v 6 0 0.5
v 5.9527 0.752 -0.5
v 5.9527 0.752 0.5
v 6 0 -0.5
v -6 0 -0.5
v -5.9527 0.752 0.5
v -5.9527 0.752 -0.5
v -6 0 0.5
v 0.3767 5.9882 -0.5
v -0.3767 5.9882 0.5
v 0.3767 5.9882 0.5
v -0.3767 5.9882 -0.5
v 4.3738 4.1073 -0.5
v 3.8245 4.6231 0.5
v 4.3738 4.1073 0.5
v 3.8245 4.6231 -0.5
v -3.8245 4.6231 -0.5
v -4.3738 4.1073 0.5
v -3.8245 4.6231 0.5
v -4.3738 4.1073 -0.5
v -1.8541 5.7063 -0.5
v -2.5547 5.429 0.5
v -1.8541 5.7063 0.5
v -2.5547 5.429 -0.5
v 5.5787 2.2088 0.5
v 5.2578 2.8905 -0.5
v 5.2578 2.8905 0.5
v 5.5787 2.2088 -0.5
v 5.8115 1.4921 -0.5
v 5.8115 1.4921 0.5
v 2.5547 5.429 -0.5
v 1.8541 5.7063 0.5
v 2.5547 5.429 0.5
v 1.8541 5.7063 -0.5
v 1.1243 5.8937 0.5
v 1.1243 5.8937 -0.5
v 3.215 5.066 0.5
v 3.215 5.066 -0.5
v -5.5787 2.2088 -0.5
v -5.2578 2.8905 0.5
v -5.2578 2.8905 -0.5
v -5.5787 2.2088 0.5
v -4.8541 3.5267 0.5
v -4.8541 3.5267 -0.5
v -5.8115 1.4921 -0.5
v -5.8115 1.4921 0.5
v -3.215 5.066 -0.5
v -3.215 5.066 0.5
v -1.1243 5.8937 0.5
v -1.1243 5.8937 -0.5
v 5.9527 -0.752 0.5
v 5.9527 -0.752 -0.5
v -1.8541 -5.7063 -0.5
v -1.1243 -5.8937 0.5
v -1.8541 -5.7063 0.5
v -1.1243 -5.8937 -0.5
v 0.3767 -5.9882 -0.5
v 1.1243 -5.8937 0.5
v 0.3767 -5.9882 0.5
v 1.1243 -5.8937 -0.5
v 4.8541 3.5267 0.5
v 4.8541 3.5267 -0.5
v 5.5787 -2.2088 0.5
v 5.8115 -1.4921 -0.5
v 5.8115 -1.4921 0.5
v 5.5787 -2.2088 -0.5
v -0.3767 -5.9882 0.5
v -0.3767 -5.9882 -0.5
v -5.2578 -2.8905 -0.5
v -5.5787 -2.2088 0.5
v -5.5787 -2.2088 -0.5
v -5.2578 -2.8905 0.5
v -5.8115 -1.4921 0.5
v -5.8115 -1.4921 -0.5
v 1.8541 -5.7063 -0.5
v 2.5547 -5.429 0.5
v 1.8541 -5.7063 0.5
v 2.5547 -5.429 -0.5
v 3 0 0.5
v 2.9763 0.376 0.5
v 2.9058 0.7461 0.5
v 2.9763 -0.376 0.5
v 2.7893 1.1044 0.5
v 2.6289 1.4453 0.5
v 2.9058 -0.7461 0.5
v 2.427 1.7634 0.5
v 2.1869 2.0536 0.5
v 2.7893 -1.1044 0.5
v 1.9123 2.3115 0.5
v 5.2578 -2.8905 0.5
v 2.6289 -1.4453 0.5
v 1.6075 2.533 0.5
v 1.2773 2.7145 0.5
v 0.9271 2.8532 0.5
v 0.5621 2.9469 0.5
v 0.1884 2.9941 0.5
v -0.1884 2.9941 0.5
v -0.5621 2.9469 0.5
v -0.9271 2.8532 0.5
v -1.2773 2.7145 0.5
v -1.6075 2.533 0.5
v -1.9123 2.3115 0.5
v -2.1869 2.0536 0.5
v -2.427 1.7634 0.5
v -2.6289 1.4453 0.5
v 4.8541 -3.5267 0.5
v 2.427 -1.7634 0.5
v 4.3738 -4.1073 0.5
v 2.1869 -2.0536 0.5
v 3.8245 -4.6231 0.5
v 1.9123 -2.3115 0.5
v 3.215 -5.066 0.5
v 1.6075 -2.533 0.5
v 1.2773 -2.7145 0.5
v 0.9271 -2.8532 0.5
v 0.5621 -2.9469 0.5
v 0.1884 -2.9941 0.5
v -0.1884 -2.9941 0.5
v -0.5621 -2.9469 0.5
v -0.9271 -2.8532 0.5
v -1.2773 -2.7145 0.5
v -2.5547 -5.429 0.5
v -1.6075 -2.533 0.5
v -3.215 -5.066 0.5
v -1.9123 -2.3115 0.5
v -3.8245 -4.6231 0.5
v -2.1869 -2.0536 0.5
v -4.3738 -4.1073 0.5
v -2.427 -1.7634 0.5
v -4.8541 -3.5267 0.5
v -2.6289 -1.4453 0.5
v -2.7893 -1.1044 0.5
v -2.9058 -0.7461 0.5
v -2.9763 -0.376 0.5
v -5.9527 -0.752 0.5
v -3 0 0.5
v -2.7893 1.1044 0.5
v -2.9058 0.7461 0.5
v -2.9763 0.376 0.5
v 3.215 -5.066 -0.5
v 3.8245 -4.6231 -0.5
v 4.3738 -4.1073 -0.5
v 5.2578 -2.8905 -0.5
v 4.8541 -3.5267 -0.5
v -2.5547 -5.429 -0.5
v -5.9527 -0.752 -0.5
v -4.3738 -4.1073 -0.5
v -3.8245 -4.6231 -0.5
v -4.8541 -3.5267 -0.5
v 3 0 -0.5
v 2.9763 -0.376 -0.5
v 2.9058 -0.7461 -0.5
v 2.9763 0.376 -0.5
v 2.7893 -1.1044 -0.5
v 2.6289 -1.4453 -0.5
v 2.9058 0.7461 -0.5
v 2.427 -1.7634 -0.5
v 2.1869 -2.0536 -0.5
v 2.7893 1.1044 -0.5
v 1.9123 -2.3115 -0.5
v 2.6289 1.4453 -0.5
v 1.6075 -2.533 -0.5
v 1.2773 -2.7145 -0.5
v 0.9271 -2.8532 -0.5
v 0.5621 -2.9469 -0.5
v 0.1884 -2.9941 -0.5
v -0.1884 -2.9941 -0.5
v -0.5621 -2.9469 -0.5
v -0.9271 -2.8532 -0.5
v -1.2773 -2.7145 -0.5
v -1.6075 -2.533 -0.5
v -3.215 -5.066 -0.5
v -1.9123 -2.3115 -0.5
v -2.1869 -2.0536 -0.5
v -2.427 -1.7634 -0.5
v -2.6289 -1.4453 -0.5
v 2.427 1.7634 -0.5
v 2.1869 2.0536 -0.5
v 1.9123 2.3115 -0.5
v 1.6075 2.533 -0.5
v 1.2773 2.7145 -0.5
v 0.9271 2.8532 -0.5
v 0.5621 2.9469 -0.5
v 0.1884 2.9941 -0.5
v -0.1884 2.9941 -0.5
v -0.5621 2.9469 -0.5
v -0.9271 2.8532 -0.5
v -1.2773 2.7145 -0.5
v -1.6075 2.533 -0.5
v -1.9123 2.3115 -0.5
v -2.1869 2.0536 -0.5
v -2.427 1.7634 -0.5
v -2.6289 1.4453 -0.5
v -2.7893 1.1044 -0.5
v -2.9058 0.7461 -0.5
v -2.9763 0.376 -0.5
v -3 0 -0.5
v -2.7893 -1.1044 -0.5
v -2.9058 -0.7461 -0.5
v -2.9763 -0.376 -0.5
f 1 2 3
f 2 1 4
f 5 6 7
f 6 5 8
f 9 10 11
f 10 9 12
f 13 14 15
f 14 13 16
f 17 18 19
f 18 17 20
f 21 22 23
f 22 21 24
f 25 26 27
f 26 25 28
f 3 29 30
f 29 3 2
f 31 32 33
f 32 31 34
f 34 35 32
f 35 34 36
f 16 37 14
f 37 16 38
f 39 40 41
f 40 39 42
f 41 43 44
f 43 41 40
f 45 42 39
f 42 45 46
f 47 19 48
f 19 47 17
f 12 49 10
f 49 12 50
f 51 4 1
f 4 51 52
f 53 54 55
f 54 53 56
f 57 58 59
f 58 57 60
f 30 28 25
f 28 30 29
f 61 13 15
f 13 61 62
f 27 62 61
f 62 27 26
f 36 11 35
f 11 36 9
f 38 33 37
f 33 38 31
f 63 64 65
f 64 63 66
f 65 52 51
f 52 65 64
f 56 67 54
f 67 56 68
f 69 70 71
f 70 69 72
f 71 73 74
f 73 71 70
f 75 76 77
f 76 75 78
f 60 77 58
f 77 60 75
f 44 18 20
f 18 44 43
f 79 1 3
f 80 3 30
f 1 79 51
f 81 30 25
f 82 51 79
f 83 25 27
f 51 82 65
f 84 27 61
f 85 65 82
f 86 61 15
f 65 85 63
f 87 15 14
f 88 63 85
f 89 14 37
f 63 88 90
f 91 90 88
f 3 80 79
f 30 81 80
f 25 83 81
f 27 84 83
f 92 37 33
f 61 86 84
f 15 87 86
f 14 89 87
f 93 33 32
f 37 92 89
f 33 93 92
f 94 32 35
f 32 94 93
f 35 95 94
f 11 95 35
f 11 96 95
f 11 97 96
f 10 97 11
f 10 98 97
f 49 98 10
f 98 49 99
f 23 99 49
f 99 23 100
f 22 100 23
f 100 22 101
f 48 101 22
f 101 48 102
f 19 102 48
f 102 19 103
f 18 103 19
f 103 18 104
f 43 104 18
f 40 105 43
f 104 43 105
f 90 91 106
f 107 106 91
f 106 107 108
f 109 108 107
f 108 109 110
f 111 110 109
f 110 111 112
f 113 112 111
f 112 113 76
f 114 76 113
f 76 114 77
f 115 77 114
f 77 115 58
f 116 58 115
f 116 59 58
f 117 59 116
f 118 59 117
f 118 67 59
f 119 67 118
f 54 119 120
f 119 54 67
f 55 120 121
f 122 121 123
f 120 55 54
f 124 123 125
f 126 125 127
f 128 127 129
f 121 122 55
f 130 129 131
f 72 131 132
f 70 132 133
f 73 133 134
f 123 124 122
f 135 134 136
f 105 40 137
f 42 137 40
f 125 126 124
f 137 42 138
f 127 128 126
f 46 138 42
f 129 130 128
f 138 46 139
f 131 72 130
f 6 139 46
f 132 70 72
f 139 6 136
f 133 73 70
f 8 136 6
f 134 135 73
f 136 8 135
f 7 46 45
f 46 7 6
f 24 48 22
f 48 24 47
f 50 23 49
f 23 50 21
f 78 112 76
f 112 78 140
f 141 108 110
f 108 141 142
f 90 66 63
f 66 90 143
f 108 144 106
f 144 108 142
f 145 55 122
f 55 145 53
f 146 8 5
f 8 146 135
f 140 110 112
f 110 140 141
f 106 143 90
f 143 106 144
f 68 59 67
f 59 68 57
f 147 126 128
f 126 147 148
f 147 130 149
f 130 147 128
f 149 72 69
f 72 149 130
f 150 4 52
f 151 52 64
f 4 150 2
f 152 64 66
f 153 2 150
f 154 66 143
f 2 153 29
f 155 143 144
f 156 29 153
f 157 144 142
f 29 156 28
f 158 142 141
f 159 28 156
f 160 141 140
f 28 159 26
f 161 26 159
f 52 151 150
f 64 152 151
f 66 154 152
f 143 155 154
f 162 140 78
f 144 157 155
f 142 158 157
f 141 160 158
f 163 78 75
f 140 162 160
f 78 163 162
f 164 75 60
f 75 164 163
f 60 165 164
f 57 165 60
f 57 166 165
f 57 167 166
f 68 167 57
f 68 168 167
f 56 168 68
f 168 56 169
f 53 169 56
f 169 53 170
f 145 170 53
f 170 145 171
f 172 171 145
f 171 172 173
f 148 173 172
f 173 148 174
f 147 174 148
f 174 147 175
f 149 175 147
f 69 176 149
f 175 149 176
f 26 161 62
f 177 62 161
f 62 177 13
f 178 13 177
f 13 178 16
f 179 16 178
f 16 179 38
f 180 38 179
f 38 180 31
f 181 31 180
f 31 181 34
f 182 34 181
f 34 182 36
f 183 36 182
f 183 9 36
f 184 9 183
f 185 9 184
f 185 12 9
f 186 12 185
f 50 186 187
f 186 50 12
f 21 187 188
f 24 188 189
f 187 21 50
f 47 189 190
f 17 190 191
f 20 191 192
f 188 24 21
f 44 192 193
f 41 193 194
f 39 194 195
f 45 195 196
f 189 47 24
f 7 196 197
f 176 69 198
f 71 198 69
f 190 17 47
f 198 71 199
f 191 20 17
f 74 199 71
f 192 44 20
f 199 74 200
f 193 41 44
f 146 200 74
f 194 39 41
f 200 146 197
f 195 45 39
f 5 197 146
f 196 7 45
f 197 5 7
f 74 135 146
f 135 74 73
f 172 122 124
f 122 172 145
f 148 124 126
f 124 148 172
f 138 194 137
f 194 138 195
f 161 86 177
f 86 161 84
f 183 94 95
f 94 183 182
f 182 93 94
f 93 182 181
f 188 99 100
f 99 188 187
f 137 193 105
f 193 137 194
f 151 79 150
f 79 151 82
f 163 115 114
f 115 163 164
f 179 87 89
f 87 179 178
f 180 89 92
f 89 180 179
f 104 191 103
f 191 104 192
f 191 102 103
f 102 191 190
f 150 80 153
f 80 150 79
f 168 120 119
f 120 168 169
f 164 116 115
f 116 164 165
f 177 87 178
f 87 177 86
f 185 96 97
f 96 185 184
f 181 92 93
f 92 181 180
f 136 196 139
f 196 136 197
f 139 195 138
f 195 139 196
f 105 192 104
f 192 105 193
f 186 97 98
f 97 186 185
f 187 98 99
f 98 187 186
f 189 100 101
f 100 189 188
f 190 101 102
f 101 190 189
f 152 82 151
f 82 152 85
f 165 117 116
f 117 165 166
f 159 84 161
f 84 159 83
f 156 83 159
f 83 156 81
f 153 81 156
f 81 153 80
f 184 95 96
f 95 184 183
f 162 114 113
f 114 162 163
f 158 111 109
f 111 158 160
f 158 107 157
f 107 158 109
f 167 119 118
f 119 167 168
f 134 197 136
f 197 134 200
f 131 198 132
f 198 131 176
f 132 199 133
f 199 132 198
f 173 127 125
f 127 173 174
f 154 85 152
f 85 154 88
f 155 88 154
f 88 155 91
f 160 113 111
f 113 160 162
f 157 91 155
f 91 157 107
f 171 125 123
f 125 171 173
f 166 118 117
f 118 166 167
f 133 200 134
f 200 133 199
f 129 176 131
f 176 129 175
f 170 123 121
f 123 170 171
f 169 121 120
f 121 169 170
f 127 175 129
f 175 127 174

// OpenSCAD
$fn = 50;


difference() {
	union() {
		translate(v = [0, 0, -0.5000000000]) {
			cylinder(h = 1, r = 6.0000000000);
		}
	}
	union() {
		translate(v = [0, 0, -100.0000000000]) {
			cylinder(h = 200, r = 3.0000000000);
		}
	}
}
